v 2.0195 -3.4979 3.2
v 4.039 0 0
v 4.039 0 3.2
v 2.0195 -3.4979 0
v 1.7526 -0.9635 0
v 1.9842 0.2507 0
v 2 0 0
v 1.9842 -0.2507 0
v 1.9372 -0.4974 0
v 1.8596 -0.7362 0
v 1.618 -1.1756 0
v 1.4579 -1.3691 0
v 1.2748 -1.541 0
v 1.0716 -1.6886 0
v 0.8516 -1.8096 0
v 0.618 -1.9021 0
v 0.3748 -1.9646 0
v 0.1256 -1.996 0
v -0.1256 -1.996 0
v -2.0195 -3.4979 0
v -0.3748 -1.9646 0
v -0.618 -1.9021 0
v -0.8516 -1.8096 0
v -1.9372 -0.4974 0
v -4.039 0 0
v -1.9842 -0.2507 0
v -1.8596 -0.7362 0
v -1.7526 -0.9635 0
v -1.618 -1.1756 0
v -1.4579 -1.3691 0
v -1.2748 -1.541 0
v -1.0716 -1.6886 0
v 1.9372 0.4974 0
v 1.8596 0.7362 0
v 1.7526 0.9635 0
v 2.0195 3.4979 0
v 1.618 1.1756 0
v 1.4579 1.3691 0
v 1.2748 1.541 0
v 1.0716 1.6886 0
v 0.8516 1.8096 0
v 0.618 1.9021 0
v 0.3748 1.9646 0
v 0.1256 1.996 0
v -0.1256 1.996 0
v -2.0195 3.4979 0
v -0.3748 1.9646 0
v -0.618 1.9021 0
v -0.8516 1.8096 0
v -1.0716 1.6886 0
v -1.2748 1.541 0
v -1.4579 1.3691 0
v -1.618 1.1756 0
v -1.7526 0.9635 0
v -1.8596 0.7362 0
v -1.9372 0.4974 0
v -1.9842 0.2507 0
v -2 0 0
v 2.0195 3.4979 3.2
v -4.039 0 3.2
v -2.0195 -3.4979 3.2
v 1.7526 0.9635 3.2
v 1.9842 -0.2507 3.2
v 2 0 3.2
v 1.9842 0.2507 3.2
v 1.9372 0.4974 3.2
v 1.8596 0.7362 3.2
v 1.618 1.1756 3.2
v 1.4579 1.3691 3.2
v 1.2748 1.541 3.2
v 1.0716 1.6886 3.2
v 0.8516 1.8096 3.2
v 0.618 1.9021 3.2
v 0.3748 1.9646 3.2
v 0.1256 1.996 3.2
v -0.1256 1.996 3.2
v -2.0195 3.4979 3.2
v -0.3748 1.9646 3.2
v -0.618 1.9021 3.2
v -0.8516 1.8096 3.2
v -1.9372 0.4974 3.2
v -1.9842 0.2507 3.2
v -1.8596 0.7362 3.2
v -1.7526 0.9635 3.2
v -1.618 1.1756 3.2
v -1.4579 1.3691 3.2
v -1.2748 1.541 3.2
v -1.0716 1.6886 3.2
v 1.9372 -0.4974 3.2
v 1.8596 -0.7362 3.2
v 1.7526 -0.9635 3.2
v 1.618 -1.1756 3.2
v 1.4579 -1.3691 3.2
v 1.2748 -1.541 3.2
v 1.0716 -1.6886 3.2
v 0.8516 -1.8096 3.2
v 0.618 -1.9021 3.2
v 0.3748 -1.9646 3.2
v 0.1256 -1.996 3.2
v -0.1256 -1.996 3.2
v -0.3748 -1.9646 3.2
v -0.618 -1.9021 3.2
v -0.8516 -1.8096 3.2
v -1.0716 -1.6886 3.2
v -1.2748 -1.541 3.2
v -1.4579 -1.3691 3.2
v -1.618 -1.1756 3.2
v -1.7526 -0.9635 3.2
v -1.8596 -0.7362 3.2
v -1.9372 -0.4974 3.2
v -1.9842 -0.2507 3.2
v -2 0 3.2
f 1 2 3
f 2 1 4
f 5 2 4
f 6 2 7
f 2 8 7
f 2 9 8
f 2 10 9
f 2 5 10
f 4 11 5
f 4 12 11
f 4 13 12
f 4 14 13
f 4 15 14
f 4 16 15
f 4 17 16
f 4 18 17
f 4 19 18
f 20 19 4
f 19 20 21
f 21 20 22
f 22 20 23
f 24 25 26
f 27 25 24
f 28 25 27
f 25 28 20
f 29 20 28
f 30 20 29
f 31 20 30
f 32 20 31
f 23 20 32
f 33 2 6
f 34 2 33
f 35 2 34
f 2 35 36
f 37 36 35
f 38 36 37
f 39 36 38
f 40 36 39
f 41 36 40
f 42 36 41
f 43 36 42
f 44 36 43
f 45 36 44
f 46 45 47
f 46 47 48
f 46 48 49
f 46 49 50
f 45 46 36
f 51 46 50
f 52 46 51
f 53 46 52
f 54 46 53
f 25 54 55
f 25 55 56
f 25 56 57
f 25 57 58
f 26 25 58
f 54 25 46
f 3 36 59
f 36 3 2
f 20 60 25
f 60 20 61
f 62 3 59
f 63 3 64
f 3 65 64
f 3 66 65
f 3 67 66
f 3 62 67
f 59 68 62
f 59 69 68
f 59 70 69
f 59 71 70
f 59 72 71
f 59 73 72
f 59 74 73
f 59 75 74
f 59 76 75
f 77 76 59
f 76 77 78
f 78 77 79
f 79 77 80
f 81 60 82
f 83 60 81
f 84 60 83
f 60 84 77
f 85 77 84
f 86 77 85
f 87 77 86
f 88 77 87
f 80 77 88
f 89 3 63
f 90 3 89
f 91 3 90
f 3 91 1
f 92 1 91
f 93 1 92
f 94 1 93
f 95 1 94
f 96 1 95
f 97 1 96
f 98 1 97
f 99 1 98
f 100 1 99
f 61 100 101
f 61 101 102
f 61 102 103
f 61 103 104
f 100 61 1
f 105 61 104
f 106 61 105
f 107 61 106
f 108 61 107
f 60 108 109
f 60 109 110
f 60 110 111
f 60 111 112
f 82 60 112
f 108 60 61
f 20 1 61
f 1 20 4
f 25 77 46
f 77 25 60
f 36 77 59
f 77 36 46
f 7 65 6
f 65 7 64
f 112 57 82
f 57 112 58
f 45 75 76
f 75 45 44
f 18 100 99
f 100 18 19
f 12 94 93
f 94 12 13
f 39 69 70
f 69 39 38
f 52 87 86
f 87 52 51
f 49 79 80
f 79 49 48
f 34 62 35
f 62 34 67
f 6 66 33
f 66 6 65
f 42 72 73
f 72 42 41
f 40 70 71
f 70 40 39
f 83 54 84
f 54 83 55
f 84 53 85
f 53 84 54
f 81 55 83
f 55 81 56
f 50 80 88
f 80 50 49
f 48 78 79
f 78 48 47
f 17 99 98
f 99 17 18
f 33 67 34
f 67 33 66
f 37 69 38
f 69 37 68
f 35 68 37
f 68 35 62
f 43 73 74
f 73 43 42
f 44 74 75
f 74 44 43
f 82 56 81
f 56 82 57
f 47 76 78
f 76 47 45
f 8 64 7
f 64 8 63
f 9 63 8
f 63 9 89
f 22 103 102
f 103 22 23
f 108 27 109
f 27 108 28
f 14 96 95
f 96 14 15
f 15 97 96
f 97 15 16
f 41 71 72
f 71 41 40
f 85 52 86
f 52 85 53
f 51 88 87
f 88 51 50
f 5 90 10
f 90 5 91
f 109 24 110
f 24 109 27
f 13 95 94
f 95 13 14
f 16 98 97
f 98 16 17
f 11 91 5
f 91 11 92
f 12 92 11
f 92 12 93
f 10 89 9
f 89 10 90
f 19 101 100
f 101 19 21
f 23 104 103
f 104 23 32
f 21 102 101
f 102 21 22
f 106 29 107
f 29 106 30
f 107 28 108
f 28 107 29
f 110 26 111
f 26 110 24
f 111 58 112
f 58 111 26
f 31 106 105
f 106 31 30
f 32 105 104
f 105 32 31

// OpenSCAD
$fn = 50;


difference() {
	union() {
		translate(v = [0, 0, 0]) {
			rotate(a = [0, 0, 0]) {
				translate(v = [0, 0, 0]) {
					rotate(a = [0, 0, 0]) {
						linear_extrude(height = 3.2000000000) {
							polygon(points = [[4.0390000000, 0.0000000000], [2.0195000000, 3.4978766059], [-2.0195000000, 3.4978766059], [-4.0390000000, 0.0000000000], [-2.0195000000, -3.4978766059], [2.0195000000, -3.4978766059]]);
						}
					}
				}
			}
		}
	}
	union() {
		translate(v = [0, 0, -10]) {
			rotate(a = [0, 0, 0]) {
				cylinder(h = 100, r = 2.0000000000);
			}
		}
	}
}
